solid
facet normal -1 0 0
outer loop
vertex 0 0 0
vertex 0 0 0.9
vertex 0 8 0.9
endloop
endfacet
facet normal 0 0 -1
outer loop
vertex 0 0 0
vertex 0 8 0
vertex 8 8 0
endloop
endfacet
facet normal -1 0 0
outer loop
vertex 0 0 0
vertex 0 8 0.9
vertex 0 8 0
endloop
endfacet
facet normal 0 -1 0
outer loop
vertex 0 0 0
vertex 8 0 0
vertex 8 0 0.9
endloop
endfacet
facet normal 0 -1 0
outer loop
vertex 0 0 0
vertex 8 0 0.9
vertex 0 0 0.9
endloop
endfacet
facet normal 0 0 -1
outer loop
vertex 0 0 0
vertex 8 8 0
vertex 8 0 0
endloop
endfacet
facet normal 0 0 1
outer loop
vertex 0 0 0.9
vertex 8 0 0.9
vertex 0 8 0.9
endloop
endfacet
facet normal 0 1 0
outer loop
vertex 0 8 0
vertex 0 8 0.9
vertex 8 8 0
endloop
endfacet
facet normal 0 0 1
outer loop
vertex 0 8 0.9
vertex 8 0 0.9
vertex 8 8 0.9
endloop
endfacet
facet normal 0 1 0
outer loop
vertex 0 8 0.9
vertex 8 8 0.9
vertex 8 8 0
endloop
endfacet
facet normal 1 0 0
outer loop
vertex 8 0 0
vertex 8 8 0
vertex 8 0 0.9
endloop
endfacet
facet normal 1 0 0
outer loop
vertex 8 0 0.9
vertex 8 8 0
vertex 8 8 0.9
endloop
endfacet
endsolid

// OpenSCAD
/* Warning, this is a very basic generator with a lot of approximation 
input data : [VQFN, 3MW, 8x8x0.9mm, 38, , A, C04-00566A]
generated by com.zoubworld.electronics.cad.model3d.Basic
Date : Sun Feb 15 10:50:49 CET 2026
*/

//body
color("black")
translate([0,0,0])
cube([8.0,8.0,0.9], center=false);
